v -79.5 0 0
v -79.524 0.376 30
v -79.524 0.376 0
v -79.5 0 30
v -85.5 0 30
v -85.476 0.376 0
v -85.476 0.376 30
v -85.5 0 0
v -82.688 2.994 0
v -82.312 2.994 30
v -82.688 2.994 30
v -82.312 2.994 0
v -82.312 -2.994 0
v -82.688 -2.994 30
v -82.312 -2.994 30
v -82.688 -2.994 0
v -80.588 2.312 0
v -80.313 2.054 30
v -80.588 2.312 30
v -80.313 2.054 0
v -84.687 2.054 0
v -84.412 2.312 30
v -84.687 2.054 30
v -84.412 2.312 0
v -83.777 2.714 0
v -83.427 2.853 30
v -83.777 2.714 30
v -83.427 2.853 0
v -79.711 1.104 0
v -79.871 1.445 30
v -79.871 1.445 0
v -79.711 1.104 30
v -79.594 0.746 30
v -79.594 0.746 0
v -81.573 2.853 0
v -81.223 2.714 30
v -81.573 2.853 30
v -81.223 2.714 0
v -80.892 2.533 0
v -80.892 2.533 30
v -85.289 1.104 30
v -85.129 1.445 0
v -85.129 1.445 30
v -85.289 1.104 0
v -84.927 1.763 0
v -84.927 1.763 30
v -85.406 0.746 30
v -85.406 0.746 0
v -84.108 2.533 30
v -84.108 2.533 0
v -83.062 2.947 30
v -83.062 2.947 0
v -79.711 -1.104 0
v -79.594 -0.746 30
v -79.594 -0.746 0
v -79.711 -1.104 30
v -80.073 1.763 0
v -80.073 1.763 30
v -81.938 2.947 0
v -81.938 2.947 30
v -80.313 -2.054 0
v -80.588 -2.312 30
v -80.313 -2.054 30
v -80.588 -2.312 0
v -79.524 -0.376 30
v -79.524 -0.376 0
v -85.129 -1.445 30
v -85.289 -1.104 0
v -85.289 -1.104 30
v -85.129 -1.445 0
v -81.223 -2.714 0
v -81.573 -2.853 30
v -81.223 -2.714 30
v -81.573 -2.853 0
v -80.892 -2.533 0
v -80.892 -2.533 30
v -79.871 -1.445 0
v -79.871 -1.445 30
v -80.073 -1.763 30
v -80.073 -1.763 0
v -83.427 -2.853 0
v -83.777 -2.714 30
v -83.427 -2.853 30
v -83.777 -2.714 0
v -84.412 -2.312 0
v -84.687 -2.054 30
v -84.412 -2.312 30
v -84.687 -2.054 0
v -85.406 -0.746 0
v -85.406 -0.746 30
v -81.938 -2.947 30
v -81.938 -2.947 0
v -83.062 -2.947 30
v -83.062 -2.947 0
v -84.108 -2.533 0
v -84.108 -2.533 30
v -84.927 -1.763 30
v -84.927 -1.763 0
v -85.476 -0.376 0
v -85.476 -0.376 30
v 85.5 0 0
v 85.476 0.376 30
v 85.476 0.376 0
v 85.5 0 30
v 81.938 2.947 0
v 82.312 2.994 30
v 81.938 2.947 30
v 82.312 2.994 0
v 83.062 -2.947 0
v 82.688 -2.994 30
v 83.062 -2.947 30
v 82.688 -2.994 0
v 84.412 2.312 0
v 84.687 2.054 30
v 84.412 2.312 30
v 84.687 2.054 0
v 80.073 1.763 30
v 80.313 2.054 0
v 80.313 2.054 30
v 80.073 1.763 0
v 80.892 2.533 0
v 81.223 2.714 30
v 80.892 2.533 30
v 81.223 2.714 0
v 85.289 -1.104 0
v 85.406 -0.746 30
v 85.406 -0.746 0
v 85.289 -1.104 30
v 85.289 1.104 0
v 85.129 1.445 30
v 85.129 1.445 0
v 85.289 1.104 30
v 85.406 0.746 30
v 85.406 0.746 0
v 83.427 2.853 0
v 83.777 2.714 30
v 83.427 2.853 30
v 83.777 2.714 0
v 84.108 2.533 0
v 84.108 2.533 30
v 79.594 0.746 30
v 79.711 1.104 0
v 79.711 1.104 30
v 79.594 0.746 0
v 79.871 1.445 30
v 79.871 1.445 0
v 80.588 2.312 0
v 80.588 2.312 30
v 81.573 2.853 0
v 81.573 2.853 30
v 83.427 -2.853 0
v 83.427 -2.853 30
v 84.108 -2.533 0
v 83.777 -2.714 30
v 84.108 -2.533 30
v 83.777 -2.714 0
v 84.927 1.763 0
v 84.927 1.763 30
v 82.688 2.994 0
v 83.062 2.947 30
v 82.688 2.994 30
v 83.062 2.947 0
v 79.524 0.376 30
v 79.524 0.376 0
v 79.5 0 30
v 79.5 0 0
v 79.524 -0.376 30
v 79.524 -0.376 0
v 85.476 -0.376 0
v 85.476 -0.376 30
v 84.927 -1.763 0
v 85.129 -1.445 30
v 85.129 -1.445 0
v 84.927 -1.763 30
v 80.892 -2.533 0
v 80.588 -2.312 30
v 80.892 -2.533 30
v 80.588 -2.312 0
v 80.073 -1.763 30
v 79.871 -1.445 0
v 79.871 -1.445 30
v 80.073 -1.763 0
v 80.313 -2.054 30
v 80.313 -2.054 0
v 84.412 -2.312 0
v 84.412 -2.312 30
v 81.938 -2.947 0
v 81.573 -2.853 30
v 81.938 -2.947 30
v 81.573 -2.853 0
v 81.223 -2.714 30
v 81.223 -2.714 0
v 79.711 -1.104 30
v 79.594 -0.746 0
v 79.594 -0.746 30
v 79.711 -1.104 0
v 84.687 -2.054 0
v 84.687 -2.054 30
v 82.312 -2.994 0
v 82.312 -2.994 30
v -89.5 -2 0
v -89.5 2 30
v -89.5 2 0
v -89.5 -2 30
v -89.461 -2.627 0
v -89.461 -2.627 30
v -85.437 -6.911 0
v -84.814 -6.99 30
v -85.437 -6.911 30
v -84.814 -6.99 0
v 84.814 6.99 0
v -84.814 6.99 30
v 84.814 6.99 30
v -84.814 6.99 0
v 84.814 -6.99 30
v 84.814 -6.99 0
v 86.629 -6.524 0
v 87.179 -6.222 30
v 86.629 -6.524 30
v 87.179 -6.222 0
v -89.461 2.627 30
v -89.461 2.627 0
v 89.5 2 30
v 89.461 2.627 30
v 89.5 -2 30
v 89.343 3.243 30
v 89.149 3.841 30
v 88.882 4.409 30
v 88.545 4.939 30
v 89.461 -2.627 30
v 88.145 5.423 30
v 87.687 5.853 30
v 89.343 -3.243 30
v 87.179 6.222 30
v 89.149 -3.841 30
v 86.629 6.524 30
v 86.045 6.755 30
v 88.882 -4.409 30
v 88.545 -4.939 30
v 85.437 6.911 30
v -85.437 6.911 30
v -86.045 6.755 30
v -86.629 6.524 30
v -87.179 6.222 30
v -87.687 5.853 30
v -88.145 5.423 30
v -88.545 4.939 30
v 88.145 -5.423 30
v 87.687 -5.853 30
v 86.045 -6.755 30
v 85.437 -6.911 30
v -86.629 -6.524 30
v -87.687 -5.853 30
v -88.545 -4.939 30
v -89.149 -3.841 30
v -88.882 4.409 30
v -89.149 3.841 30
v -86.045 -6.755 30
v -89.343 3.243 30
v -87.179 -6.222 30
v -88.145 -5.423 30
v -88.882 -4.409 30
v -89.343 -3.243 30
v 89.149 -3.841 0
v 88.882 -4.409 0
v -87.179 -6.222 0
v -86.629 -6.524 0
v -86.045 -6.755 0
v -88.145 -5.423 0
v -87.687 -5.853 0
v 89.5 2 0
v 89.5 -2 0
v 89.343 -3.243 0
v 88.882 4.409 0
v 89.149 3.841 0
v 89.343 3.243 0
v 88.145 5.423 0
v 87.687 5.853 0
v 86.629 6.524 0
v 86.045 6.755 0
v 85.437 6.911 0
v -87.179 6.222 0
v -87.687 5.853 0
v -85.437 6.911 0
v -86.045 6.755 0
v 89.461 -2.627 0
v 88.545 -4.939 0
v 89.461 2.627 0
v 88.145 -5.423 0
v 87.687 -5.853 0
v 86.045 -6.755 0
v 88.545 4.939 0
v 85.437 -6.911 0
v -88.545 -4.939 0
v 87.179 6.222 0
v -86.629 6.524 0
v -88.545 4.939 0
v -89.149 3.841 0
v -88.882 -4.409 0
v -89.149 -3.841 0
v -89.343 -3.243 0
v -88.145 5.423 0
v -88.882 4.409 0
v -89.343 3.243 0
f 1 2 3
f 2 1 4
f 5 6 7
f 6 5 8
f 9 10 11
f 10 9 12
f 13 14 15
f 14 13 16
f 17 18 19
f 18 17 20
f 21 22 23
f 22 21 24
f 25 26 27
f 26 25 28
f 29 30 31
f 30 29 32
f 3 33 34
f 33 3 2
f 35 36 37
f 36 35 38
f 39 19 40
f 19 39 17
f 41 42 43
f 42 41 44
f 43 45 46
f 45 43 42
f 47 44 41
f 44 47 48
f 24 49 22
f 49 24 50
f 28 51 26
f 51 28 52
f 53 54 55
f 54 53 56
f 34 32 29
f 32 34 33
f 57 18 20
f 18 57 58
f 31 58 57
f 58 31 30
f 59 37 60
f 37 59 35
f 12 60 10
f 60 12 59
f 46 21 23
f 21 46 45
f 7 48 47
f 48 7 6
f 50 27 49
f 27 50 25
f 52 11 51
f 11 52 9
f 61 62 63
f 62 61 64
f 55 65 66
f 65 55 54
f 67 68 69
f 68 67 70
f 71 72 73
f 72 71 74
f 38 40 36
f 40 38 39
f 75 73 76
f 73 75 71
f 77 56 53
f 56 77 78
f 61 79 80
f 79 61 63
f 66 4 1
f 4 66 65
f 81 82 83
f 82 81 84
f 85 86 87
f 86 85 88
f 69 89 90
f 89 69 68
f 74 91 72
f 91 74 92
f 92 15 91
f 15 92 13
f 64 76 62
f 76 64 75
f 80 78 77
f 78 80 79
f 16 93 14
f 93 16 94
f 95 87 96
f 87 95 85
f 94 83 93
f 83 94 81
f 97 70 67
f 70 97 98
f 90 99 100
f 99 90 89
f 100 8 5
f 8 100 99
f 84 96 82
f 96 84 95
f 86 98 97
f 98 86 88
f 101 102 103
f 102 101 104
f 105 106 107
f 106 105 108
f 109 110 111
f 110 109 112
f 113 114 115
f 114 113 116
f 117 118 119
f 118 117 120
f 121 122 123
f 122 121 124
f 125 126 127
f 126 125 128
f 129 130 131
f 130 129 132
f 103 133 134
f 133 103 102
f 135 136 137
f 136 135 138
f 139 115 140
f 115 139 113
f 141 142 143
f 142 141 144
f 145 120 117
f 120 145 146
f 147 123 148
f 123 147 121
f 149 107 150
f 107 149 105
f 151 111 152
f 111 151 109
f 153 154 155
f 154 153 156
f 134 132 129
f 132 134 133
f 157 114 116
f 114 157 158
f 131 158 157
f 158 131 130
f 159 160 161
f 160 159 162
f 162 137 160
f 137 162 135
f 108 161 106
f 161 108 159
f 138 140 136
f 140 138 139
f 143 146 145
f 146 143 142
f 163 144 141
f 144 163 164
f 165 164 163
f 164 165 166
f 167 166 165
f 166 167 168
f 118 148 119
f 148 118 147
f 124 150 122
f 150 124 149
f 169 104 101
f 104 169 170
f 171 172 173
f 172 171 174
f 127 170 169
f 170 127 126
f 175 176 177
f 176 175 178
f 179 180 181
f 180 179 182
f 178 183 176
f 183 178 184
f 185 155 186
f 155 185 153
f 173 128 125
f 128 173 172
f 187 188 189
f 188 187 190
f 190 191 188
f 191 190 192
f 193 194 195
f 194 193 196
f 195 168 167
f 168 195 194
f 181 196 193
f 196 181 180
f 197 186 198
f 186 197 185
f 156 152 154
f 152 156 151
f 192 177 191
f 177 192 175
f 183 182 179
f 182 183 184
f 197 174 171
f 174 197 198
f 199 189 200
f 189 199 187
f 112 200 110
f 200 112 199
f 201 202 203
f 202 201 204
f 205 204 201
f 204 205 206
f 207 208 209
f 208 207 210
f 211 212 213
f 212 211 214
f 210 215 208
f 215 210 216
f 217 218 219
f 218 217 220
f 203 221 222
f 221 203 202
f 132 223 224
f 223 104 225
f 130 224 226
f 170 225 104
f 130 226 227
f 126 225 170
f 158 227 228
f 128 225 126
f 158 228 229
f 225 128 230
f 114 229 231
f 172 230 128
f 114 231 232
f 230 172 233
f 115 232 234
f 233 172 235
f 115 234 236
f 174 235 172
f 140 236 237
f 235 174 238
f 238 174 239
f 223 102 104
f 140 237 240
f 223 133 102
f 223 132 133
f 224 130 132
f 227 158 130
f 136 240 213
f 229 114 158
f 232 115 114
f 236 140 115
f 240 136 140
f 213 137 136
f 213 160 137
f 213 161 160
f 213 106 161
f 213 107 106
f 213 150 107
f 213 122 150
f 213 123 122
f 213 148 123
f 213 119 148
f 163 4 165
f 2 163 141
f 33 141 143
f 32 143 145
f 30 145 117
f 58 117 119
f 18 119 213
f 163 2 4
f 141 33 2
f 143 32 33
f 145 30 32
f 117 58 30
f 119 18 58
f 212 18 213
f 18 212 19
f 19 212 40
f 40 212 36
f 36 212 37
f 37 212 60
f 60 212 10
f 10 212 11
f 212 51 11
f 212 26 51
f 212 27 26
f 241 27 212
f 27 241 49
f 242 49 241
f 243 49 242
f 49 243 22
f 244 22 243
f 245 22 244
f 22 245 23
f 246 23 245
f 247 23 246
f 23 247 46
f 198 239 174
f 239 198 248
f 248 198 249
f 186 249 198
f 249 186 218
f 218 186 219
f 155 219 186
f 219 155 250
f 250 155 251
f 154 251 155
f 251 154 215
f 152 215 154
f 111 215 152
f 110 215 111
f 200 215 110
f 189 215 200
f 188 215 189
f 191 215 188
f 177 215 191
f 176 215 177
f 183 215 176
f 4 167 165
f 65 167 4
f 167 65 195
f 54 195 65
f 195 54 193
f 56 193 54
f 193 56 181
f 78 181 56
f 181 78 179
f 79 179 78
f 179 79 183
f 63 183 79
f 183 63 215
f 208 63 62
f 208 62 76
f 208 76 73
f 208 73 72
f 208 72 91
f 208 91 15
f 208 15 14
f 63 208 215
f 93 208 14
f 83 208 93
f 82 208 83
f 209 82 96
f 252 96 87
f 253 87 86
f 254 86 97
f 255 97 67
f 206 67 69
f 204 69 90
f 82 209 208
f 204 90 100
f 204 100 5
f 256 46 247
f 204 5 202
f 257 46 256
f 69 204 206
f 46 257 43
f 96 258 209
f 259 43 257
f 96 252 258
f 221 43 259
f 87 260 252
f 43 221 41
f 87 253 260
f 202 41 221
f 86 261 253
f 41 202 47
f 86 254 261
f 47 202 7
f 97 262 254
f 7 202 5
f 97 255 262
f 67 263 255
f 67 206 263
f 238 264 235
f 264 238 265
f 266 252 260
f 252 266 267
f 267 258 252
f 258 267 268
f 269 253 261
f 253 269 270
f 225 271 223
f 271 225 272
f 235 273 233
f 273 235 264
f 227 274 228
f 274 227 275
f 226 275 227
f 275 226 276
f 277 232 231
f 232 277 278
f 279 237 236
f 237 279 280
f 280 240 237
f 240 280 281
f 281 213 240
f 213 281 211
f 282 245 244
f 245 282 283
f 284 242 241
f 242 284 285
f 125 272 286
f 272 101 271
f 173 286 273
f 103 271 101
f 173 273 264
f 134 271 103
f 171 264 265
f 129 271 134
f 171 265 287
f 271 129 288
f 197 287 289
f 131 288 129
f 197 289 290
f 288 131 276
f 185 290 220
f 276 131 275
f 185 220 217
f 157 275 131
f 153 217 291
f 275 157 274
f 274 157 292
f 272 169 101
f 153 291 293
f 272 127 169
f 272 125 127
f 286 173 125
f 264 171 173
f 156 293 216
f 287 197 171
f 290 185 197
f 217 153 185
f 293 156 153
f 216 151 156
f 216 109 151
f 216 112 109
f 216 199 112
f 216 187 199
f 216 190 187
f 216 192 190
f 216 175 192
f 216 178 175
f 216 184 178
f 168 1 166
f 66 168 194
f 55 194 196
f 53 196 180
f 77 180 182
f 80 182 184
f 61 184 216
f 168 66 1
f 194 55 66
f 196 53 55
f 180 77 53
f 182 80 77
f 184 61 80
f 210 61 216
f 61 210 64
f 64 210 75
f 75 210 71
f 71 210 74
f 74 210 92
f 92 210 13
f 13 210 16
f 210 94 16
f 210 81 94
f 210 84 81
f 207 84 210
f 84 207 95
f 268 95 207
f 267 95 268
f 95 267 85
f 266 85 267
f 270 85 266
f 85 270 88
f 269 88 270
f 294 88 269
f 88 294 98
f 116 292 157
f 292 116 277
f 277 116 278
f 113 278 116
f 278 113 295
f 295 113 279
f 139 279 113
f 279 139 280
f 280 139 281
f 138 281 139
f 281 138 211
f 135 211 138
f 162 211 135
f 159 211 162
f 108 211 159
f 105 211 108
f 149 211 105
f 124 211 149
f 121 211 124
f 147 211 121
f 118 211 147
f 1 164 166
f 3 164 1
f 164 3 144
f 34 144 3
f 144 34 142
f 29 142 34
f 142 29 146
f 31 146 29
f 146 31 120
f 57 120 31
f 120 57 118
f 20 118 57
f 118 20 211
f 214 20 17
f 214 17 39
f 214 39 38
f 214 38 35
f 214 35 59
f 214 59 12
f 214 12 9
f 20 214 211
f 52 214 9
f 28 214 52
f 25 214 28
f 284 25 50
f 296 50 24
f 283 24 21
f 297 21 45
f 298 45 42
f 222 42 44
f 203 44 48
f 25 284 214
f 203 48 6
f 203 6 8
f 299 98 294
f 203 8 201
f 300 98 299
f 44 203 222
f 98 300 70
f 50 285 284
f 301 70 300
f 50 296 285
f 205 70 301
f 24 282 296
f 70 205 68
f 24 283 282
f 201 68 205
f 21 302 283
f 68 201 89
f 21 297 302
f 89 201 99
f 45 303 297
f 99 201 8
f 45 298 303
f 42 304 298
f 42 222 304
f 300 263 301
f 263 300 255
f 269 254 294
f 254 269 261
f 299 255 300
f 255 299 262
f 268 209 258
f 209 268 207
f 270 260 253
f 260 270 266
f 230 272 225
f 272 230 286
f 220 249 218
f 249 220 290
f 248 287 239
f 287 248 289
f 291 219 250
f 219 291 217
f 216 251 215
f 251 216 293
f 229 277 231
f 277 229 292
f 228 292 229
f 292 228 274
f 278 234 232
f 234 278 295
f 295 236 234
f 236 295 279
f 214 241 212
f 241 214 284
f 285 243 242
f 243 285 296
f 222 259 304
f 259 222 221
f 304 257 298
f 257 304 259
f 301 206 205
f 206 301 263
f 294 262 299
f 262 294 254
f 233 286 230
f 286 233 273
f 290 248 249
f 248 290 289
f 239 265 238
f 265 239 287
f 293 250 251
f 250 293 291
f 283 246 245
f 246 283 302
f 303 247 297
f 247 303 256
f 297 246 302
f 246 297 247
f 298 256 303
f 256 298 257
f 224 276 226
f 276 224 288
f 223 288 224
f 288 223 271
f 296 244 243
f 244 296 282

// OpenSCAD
$fn = 50;


difference() {
	union() {
		hull() {
			translate(v = [-84.5000000000, 2.0000000000, 0]) {
				cylinder(h = 30, r = 5);
			}
			translate(v = [84.5000000000, 2.0000000000, 0]) {
				cylinder(h = 30, r = 5);
			}
			translate(v = [-84.5000000000, -2.0000000000, 0]) {
				cylinder(h = 30, r = 5);
			}
			translate(v = [84.5000000000, -2.0000000000, 0]) {
				cylinder(h = 30, r = 5);
			}
		}
	}
	union() {
		translate(v = [-82.5000000000, 0.0000000000, -100.0000000000]) {
			cylinder(h = 200, r = 3.0000000000);
		}
		translate(v = [-82.5000000000, 0.0000000000, -100.0000000000]) {
			cylinder(h = 200, r = 3.0000000000);
		}
		translate(v = [82.5000000000, 0.0000000000, -100.0000000000]) {
			cylinder(h = 200, r = 3.0000000000);
		}
		translate(v = [82.5000000000, 0.0000000000, -100.0000000000]) {
			cylinder(h = 200, r = 3.0000000000);
		}
	}
}
